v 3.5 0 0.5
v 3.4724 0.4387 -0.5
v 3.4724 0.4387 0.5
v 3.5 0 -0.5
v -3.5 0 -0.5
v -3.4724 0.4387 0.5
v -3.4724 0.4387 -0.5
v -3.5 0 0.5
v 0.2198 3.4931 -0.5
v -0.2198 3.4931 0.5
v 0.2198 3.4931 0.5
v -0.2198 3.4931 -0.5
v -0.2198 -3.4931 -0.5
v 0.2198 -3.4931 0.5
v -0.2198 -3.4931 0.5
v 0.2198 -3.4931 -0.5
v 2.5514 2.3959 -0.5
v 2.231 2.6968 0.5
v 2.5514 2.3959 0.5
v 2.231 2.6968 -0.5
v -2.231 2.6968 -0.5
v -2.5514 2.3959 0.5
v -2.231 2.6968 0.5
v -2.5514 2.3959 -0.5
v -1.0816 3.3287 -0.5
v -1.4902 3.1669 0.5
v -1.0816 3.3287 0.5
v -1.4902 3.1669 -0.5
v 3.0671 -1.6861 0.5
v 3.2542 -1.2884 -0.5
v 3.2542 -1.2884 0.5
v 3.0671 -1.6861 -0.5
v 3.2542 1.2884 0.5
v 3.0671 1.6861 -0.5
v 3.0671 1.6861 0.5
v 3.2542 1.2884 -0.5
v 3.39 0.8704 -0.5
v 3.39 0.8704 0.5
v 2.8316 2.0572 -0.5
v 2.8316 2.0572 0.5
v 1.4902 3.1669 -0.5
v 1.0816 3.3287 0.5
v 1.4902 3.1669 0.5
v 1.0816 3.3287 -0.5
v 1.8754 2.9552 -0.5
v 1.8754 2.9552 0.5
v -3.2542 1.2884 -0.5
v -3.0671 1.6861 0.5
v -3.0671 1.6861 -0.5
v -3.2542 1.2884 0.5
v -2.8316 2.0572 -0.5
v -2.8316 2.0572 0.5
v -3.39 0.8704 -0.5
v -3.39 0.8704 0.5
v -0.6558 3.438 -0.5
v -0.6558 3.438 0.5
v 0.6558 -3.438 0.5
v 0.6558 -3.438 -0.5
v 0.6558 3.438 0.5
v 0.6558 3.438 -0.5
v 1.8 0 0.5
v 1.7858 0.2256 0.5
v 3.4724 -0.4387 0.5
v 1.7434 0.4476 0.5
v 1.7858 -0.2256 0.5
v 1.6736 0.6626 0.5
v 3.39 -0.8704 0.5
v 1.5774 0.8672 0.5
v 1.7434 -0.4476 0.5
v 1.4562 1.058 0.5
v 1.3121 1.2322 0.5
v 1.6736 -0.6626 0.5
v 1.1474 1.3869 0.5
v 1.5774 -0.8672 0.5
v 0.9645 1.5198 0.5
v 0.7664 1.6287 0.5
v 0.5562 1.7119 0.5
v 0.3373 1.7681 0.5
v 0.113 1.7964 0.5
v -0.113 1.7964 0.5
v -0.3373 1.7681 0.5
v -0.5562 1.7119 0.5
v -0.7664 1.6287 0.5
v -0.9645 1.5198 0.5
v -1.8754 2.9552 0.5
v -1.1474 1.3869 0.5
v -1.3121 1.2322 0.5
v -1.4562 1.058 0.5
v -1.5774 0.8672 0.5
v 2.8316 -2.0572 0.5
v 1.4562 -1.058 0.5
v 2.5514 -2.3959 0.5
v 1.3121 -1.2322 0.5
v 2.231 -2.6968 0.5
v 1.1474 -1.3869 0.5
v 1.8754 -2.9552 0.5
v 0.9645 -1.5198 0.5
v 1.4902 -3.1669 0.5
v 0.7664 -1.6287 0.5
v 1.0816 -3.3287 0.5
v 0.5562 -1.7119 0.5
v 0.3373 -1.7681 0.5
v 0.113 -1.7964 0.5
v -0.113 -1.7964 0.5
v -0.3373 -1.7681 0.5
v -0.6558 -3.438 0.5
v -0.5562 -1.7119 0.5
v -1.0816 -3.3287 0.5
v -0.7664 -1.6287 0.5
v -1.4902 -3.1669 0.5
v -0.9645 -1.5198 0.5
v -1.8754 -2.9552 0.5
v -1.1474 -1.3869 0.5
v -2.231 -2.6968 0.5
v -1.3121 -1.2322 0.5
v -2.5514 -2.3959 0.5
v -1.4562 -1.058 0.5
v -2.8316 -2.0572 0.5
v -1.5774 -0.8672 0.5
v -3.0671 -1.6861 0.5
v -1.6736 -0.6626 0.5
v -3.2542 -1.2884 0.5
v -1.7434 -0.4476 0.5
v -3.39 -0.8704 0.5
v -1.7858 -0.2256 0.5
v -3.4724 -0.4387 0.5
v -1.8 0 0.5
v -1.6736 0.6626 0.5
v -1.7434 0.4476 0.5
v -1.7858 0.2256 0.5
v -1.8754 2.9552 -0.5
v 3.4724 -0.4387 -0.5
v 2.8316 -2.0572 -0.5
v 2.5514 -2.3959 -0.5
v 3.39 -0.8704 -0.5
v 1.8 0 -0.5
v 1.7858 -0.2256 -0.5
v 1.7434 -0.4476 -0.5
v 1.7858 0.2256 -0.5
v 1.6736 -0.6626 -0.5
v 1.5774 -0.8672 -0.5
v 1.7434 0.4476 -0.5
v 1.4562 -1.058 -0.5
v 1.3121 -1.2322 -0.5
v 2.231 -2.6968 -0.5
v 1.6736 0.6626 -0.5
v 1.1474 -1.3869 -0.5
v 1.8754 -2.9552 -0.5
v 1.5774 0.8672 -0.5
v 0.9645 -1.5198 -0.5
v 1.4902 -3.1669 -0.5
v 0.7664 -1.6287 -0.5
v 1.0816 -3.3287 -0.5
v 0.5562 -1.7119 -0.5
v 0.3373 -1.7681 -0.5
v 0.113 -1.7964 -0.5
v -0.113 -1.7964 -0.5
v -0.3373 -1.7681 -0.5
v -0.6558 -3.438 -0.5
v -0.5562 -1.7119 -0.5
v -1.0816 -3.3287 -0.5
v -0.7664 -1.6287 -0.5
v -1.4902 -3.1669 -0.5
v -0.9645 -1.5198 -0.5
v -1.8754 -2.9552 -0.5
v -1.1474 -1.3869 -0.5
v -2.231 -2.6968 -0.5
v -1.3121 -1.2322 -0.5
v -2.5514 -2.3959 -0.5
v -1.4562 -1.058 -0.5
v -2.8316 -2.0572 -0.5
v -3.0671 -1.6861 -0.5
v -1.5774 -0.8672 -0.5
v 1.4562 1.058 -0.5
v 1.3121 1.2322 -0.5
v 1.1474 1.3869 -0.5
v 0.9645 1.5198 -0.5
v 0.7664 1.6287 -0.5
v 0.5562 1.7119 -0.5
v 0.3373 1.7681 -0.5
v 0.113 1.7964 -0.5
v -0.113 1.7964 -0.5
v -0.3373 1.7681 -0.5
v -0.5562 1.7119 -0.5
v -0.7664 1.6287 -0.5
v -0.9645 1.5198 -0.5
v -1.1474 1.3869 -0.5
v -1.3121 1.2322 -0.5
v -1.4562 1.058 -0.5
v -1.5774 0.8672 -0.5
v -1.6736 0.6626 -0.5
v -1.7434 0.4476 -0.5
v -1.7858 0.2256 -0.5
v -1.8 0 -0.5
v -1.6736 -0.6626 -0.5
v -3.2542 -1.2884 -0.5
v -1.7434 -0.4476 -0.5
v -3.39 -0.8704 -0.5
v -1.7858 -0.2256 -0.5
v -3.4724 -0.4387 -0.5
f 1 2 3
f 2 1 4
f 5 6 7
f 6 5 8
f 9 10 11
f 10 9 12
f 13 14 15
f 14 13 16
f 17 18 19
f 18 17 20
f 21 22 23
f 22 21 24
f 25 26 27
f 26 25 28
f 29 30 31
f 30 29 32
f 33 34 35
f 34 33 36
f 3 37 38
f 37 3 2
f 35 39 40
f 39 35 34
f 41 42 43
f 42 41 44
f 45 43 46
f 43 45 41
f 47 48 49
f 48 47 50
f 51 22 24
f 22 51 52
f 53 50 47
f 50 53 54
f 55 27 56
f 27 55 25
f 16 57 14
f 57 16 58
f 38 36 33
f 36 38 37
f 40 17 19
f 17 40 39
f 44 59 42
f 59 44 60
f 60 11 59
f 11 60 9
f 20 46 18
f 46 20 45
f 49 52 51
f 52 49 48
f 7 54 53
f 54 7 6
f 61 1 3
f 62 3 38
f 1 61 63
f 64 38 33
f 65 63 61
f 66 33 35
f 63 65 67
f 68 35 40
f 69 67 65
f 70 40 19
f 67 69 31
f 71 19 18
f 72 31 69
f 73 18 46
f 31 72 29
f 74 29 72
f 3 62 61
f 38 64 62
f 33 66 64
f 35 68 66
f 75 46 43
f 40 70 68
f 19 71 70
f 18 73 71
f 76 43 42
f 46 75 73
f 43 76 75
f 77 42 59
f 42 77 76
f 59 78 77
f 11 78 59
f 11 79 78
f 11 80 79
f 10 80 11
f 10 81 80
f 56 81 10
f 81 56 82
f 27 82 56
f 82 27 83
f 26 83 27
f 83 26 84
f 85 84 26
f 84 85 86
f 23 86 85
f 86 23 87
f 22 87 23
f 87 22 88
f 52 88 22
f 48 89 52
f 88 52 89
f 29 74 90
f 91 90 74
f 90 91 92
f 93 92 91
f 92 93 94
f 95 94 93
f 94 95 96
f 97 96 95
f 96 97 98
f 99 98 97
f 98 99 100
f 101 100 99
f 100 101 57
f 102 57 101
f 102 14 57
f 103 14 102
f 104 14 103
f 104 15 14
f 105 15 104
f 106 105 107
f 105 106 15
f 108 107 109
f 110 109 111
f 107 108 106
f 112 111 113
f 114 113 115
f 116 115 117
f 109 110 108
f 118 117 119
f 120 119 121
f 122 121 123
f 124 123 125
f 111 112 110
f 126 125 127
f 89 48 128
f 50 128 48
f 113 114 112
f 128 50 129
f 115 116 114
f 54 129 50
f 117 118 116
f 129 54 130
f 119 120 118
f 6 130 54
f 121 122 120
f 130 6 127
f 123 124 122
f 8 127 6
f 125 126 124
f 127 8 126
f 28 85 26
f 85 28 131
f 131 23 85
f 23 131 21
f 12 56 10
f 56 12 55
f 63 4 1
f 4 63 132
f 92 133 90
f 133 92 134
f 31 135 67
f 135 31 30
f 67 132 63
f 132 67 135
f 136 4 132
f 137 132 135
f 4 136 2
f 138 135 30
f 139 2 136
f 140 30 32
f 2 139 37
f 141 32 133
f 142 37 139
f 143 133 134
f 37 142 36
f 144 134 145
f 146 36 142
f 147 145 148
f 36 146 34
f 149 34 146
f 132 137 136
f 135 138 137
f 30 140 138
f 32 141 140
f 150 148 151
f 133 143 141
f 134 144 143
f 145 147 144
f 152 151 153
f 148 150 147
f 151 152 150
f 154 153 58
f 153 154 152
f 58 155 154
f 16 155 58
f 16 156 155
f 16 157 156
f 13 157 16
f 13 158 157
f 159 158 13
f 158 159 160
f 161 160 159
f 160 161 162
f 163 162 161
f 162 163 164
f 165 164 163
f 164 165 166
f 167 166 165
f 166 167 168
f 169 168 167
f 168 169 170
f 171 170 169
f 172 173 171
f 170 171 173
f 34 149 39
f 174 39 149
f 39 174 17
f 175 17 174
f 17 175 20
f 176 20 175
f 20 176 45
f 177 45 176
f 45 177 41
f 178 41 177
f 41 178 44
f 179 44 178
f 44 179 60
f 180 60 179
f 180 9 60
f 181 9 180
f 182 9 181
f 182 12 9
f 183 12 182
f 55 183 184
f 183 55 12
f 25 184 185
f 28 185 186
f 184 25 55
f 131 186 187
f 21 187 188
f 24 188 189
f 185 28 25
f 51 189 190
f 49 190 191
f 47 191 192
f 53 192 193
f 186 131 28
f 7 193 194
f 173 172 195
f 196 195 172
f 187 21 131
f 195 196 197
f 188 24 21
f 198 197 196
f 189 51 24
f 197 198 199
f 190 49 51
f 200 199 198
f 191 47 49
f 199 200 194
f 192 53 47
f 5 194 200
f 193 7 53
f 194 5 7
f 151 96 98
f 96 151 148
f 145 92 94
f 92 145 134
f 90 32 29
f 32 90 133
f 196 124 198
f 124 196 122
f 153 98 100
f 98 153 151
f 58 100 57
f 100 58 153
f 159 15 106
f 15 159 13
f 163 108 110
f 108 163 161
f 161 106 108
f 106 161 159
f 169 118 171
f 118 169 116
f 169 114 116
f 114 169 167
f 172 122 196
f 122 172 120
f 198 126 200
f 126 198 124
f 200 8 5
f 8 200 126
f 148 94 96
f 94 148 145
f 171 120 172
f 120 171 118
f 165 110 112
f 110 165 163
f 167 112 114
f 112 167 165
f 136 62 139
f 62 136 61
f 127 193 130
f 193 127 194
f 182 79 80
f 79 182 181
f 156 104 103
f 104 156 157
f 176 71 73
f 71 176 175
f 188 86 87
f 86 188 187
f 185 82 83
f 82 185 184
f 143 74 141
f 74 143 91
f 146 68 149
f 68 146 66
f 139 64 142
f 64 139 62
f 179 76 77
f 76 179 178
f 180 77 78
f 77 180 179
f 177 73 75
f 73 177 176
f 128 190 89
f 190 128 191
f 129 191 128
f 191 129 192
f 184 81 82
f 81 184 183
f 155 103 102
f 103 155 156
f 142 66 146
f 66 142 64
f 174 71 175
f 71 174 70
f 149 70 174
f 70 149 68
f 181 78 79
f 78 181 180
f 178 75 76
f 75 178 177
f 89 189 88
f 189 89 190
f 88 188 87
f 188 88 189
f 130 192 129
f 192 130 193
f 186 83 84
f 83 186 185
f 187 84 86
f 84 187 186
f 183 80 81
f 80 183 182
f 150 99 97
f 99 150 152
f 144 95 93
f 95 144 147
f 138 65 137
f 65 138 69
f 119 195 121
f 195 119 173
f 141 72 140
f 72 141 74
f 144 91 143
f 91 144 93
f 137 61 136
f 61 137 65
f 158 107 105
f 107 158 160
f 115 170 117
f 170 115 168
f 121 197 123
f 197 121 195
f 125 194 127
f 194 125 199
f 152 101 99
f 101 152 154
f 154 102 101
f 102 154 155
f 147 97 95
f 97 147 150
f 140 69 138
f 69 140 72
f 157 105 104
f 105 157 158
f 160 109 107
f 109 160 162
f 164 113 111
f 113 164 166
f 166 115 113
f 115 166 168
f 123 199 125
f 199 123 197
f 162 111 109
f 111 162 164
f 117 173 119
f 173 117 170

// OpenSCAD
$fn = 50;


difference() {
	union() {
		translate(v = [0, 0, -0.5000000000]) {
			cylinder(h = 1, r = 3.5000000000);
		}
	}
	union() {
		translate(v = [0, 0, -100.0000000000]) {
			cylinder(h = 200, r = 1.8000000000);
		}
	}
}
